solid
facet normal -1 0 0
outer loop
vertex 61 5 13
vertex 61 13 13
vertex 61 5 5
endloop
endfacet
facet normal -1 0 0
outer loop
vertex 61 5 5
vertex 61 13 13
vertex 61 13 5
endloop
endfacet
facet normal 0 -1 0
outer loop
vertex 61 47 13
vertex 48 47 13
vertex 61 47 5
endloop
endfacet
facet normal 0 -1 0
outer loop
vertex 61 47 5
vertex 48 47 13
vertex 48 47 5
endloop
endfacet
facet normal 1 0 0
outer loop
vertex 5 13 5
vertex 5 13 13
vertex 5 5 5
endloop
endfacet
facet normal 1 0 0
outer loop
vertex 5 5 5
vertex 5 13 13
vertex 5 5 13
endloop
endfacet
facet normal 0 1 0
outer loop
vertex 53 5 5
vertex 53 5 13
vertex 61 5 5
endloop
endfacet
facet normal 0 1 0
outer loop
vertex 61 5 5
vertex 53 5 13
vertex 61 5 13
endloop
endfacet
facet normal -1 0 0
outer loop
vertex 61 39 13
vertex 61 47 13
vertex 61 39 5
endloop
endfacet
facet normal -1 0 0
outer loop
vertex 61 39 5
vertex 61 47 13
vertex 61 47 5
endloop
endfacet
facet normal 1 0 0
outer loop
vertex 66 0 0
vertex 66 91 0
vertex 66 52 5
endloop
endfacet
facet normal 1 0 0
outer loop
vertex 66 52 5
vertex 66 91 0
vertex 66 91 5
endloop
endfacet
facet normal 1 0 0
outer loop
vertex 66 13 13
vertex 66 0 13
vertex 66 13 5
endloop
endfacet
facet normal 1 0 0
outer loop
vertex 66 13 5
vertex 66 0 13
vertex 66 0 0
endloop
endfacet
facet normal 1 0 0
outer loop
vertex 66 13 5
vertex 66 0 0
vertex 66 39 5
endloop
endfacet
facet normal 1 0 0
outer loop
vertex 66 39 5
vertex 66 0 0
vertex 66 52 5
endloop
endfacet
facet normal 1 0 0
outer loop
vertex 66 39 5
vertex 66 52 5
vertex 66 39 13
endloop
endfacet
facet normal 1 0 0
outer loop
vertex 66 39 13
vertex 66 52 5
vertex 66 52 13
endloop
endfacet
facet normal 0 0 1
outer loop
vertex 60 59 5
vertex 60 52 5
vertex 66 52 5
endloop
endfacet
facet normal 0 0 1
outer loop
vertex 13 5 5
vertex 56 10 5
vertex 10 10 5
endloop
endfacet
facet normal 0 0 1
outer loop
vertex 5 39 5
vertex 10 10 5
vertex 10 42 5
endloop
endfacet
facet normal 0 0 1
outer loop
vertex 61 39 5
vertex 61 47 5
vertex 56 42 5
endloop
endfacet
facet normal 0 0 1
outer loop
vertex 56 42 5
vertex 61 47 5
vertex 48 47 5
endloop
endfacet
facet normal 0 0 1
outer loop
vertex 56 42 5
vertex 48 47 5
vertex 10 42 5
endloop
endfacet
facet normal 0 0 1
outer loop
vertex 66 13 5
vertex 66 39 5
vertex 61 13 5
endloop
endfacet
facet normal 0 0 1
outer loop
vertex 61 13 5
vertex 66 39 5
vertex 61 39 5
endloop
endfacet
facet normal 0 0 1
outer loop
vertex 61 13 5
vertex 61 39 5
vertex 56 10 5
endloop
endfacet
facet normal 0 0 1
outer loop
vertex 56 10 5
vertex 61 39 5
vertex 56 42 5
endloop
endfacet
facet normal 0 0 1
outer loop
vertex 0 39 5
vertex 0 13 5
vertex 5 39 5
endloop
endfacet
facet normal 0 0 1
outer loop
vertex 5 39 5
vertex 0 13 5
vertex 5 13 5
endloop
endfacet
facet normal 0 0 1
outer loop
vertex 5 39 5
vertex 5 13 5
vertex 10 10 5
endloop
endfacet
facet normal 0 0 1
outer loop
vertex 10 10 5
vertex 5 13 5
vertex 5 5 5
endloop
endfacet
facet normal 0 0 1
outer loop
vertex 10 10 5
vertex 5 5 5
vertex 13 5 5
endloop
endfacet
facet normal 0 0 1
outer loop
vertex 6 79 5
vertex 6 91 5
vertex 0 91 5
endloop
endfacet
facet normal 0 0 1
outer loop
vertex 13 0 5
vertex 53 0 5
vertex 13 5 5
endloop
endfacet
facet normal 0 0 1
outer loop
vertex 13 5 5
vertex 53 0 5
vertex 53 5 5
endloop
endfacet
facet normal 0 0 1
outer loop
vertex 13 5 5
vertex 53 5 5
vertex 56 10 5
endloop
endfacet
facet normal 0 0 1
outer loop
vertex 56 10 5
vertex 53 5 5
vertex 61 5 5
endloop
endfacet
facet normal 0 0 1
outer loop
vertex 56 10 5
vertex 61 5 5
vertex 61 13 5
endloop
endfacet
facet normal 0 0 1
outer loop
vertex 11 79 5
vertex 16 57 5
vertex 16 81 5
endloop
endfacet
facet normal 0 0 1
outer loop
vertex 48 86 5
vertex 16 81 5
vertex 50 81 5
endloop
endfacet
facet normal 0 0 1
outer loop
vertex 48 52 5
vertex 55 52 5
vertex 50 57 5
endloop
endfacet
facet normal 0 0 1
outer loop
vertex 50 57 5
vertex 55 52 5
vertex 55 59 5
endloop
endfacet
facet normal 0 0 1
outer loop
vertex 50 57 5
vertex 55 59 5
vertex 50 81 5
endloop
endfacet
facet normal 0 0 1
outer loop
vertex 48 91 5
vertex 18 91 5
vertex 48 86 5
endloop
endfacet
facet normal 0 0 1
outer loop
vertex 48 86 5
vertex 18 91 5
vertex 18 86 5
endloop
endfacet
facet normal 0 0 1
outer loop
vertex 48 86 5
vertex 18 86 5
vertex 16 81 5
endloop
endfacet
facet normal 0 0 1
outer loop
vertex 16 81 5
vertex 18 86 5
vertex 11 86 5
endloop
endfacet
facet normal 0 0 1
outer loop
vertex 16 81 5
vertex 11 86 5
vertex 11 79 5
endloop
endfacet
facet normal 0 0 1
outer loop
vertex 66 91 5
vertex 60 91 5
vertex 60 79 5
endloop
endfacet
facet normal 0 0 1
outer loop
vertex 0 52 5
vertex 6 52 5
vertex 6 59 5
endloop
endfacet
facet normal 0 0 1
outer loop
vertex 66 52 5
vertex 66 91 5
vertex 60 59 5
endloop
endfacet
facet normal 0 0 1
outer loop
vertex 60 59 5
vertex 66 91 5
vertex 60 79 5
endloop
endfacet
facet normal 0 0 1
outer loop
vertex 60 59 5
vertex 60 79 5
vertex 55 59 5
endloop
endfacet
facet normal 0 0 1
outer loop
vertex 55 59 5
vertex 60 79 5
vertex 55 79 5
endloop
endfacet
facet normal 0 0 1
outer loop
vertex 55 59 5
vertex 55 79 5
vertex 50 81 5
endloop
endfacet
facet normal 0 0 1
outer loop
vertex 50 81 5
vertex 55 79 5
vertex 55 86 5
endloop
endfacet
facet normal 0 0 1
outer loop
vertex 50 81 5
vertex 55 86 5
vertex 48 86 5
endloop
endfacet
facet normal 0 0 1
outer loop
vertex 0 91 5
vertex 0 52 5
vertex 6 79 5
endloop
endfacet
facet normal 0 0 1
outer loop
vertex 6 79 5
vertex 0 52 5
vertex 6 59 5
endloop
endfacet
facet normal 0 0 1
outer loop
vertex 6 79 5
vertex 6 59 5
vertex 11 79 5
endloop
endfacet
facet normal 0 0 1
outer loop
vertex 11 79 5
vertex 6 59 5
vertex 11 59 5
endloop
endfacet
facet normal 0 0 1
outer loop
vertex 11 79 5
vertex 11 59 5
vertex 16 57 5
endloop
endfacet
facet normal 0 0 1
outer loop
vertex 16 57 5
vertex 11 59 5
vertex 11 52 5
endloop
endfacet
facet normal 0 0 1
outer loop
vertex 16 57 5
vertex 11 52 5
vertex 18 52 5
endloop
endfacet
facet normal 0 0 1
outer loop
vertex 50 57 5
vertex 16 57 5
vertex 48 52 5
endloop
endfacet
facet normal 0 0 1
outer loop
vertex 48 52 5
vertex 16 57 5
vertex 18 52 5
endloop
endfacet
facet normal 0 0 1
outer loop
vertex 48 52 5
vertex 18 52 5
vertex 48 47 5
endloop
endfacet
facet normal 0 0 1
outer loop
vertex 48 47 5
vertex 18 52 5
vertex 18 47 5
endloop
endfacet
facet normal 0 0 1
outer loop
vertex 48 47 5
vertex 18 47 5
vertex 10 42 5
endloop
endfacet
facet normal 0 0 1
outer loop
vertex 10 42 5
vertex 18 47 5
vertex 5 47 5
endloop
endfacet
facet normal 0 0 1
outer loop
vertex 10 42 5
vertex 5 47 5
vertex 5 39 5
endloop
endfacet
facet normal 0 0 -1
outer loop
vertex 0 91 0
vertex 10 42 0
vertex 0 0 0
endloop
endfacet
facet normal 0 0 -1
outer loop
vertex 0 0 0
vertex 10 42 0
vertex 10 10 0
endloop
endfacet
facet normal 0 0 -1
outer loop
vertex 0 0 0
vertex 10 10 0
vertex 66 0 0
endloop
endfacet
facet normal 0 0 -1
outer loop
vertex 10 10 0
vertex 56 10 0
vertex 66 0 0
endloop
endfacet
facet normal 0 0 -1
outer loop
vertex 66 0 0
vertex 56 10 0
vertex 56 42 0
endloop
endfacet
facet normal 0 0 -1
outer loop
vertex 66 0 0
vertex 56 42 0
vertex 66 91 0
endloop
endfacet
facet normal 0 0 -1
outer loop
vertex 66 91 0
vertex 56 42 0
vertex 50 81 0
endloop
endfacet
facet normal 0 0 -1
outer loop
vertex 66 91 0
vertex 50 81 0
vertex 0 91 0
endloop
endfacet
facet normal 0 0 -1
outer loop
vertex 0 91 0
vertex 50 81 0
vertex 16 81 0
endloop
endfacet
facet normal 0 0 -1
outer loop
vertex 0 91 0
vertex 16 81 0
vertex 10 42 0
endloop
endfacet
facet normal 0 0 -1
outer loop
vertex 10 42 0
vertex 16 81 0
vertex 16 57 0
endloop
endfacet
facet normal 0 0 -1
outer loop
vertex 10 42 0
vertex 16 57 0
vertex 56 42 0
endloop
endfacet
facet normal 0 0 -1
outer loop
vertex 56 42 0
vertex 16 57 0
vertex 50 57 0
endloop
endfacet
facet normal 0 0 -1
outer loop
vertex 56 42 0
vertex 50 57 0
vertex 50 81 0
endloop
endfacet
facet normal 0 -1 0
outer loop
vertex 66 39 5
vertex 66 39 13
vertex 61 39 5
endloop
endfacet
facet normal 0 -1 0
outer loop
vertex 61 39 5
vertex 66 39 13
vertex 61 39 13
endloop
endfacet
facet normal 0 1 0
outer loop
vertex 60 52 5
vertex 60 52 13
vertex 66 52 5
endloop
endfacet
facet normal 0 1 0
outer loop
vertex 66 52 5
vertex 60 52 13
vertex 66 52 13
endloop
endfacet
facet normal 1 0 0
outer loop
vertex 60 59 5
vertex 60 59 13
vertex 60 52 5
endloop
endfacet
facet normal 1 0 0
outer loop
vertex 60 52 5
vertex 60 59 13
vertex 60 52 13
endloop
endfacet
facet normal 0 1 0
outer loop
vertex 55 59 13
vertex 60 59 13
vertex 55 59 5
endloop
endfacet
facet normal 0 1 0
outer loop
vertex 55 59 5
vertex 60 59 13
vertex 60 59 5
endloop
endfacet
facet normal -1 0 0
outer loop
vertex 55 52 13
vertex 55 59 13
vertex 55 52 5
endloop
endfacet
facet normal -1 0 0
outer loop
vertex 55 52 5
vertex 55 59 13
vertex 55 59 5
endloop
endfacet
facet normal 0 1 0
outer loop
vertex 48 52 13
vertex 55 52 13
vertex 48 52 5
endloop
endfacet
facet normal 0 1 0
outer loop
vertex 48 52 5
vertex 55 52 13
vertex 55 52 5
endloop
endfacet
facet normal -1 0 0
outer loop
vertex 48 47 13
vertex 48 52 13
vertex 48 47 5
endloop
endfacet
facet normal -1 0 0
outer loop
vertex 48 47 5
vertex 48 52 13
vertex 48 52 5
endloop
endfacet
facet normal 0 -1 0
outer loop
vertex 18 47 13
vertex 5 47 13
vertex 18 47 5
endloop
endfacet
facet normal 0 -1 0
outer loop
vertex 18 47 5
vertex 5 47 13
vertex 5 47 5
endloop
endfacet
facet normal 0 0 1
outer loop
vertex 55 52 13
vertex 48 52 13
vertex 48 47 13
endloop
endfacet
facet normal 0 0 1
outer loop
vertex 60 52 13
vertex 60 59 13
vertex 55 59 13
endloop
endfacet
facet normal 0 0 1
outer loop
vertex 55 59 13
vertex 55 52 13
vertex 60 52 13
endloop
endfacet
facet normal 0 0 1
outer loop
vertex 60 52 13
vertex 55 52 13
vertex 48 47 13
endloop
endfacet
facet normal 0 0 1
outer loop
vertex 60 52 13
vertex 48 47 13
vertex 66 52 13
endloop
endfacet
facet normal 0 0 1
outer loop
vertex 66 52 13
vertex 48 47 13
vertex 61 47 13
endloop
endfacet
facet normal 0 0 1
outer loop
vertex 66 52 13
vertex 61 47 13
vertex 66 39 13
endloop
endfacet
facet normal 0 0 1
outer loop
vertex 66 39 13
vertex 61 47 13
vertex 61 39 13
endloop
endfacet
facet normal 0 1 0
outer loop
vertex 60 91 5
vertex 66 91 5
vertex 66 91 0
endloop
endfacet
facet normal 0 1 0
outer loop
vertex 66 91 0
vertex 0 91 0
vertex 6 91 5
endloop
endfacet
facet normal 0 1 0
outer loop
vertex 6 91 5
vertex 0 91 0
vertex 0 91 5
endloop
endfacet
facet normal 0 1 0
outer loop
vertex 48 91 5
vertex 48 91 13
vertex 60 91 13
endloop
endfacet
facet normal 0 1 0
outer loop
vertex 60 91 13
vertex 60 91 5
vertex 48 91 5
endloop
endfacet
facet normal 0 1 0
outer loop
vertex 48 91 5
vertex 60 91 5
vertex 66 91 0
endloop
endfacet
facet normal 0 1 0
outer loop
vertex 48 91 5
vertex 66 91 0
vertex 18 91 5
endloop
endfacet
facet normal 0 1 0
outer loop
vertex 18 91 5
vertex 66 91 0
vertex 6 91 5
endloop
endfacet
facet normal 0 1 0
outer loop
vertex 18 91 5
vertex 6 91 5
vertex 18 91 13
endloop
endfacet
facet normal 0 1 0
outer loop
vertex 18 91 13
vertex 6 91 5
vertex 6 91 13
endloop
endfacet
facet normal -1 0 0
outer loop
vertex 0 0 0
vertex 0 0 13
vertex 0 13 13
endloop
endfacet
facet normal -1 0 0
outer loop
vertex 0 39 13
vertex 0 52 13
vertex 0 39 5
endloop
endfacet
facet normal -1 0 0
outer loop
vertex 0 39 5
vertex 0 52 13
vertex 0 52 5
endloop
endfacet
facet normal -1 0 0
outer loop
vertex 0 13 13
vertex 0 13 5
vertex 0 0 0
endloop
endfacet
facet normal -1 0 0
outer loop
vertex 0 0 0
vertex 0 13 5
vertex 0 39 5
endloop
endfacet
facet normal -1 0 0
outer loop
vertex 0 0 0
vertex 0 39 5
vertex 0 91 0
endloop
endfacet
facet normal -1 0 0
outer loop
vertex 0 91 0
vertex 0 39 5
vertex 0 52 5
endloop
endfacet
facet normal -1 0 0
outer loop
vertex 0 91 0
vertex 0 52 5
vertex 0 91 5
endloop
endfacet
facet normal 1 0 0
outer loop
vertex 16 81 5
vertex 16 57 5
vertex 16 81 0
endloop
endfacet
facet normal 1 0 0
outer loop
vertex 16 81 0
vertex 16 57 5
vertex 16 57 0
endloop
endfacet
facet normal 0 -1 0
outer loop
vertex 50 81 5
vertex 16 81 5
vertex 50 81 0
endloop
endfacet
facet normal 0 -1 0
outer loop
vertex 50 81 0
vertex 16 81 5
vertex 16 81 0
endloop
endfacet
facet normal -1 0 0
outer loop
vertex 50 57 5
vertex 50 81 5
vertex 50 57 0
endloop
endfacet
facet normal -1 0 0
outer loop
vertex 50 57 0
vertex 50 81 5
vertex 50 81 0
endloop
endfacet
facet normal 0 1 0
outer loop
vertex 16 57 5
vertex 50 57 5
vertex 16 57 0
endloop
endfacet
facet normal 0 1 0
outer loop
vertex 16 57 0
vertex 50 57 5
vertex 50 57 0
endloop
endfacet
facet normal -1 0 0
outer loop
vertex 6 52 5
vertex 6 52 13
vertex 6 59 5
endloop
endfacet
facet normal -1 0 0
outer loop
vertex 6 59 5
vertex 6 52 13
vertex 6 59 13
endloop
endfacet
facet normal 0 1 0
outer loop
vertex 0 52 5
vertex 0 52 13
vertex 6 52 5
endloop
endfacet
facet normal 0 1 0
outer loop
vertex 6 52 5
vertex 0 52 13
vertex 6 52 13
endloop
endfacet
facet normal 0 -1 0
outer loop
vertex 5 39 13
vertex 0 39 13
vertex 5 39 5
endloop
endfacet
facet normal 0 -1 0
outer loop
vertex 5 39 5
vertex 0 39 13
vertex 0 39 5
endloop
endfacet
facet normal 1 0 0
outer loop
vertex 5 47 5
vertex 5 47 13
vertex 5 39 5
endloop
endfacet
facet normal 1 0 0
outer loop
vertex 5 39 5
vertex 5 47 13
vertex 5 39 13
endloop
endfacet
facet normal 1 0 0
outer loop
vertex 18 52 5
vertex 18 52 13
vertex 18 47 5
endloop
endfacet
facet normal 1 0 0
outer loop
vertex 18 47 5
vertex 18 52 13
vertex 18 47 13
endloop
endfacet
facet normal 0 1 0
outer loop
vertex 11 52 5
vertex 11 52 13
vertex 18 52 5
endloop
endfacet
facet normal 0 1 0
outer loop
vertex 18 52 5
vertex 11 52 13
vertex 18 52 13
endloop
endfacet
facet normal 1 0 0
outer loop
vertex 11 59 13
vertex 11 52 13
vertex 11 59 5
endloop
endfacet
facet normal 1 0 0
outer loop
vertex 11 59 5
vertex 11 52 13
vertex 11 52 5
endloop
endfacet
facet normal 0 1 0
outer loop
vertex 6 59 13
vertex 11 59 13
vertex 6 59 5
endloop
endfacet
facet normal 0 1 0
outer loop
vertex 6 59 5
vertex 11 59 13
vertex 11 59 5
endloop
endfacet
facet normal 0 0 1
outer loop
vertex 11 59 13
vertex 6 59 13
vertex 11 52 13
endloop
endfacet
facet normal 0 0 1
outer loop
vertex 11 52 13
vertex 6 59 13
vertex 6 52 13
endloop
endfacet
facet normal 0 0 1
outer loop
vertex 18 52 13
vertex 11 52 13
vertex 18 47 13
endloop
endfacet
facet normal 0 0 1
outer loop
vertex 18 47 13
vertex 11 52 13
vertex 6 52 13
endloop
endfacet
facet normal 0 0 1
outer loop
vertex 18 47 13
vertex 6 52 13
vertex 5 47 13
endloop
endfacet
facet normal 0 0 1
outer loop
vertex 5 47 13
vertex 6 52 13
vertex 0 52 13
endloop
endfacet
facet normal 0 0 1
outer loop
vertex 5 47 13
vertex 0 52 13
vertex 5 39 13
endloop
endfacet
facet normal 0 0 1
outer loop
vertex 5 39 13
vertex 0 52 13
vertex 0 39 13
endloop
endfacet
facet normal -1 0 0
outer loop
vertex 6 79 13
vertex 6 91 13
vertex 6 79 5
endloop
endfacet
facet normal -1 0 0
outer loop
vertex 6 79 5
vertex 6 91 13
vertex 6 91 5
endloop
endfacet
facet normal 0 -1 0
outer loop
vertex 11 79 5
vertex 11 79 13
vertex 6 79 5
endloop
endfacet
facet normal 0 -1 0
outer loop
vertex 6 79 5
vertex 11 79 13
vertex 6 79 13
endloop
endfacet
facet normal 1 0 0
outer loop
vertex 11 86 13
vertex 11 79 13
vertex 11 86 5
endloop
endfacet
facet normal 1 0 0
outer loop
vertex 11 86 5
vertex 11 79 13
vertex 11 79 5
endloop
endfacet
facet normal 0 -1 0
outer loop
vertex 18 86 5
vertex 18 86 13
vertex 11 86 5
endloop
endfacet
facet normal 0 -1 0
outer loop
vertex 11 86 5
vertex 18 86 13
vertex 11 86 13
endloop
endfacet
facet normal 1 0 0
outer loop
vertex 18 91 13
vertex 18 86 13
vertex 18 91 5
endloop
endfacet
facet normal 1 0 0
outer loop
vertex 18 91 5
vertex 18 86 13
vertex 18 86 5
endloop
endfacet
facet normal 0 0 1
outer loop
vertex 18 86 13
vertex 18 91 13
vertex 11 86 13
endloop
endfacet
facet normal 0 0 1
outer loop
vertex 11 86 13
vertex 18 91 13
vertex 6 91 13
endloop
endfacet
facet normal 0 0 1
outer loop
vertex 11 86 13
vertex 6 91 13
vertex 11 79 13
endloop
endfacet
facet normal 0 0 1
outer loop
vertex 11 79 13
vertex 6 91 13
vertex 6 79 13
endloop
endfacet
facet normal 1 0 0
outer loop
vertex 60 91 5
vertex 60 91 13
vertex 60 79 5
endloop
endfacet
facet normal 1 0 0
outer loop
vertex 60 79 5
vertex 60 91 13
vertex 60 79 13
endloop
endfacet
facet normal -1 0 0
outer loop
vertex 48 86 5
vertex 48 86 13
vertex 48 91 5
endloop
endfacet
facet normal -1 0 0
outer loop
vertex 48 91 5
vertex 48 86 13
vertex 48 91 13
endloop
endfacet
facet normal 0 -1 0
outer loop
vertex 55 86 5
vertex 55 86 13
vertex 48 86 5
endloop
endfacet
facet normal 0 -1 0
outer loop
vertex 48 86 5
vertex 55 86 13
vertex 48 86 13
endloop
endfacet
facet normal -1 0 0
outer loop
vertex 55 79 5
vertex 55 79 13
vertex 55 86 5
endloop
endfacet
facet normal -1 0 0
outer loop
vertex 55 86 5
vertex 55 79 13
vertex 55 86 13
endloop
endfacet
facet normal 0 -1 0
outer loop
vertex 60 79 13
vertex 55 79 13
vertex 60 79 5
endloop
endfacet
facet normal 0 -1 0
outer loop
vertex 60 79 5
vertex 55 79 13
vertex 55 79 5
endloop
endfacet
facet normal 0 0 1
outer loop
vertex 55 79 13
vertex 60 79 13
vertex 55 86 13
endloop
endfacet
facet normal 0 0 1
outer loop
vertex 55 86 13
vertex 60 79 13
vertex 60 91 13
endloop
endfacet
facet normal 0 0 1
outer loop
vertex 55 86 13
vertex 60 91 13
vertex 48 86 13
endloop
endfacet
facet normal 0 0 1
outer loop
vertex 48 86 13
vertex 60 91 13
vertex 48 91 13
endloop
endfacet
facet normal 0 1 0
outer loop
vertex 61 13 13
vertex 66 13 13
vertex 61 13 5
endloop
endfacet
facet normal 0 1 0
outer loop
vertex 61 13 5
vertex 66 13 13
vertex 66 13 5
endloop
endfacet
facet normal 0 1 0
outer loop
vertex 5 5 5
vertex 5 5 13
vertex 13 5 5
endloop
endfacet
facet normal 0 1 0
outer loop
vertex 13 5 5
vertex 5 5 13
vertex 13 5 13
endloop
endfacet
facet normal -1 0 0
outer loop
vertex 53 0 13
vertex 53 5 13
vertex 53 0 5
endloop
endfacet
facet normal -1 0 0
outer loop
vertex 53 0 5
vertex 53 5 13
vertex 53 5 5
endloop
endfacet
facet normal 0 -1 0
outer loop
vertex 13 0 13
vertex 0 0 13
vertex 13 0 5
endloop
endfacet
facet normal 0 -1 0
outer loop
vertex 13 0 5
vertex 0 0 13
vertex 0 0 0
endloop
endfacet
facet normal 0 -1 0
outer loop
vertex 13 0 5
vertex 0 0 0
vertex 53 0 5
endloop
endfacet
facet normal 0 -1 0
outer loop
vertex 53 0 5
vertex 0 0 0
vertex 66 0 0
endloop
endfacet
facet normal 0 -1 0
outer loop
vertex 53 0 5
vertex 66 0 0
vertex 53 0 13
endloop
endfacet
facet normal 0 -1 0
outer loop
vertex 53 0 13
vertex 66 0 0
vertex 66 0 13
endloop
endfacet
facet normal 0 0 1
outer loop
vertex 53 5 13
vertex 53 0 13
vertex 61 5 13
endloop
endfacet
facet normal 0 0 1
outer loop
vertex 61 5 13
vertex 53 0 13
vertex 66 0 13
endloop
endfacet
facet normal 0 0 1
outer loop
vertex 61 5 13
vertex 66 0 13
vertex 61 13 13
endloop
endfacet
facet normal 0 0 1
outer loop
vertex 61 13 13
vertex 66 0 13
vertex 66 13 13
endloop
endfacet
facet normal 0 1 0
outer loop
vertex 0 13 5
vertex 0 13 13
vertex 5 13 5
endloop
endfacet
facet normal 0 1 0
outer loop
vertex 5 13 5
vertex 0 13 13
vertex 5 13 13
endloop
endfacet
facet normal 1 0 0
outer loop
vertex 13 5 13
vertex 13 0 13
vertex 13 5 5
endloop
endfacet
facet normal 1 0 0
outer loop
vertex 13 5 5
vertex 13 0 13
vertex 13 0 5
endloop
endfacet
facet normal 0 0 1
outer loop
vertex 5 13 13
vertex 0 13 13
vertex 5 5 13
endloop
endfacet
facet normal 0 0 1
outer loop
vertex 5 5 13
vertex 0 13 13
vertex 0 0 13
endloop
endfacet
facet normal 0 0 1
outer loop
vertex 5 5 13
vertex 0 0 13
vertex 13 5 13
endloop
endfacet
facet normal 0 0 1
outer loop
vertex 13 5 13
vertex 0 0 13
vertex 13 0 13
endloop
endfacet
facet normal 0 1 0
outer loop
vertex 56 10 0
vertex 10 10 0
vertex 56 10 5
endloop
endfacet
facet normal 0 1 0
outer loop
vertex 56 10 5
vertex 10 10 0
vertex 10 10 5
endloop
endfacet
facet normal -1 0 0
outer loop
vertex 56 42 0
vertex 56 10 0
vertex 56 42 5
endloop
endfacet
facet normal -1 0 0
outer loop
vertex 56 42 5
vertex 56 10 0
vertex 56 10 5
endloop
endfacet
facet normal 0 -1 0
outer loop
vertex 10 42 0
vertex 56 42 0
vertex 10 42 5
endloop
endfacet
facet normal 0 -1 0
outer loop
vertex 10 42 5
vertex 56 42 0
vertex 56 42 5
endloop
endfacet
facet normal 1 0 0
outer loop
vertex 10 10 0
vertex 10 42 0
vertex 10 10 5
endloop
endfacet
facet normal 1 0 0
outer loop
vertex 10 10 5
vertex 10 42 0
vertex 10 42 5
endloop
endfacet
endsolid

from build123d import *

# Parameters (mm, degrees)
SKETCH1_W             = 40
SKETCH1_H             = 5
BOSS_EXTRUDE1_DEPTH   = 5
SKETCH1_W_2           = 5
SKETCH1_H_2           = 26
BOSS_EXTRUDE1_2_DEPTH = 5
BOSS_EXTRUDE1_3_DEPTH = 5
SKETCH1_W_3           = 34
SKETCH1_H_3           = 24
BOSS_EXTRUDE1_4_DEPTH = 5
BOSS_EXTRUDE2_DEPTH   = 13
SKETCH2_W             = 46
SKETCH2_H             = 32
BOSS_EXTRUDE6_DEPTH   = 5


with BuildPart() as part:
    # Sketch1 → Boss-Extrude1 (new body)
    with BuildSketch(Plane.XY):
        with Locations((33, 2.5)):
            Rectangle(SKETCH1_W, SKETCH1_H)
    extrude(amount=BOSS_EXTRUDE1_DEPTH)



with BuildPart() as body_2:
    # Sketch1 → Boss-Extrude1 2 (new body)
    with BuildSketch(Plane.XY):
        with Locations((2.5, 26)):
            Rectangle(SKETCH1_W_2, SKETCH1_H_2)
    extrude(amount=BOSS_EXTRUDE1_2_DEPTH)


with BuildPart() as body_3:
    # Sketch1 → Boss-Extrude1 3 (new body)
    with BuildSketch(Plane.XY):
        with Locations((63.5, 26)):
            Rectangle(SKETCH1_W_2, SKETCH1_H_2)
    extrude(amount=BOSS_EXTRUDE1_3_DEPTH)


with BuildPart() as body_4:
    # Sketch1 → Boss-Extrude1 4 (new body)
    with BuildSketch(Plane.XY):
        Polygon((0, 91), (0, 52), (6, 52), (6, 59), (11, 59), (11, 52), (18, 52), (18, 47), (48, 47), (48, 52), (55, 52), (55, 59), (60, 59), (60, 52), (66, 52), (66, 91), (60, 91), (60, 79), (55, 79), (55, 86), (48, 86), (48, 91), (18, 91), (18, 86), (11, 86), (11, 79), (6, 79), (6, 91), align=None)
        with Locations((33, 69)):
            Rectangle(SKETCH1_W_3, SKETCH1_H_3, mode=Mode.SUBTRACT)
    extrude(amount=BOSS_EXTRUDE1_4_DEPTH)


with BuildPart() as part_1:
    add(part.part)

    add(body_2.part)  # Boss-Extrude2 merges body 2

    add(body_3.part)  # Boss-Extrude2 merges body 3

    add(body_4.part)  # Boss-Extrude2 merges body 4
    # Sketch1<3> → Boss-Extrude2 (add)
    with BuildSketch(Plane.XY):
        Polygon((0, 13), (0, 0), (13, 0), (13, 5), (5, 5), (5, 13), align=None)
        Polygon((53, 5), (53, 0), (66, 0), (66, 13), (61, 13), (61, 5), align=None)
        Polygon((0, 52), (0, 39), (5, 39), (5, 47), (18, 47), (18, 52), (11, 52), (11, 59), (6, 59), (6, 52), align=None)
        Polygon((61, 47), (61, 39), (66, 39), (66, 52), (60, 52), (60, 59), (55, 59), (55, 52), (48, 52), (48, 47), align=None)
        Polygon((18, 91), (6, 91), (6, 79), (11, 79), (11, 86), (18, 86), align=None)
        Polygon((60, 91), (48, 91), (48, 86), (55, 86), (55, 79), (60, 79), align=None)
    extrude(amount=BOSS_EXTRUDE2_DEPTH)

    # Sketch2 → Boss-Extrude6 (add)
    with BuildSketch(Plane.XY.offset(5)):
        Polygon((5, 10), (5, 5), (10, 5), (13, 5), (53, 5), (56, 5), (61, 5), (61, 10), (61, 42), (61, 47), (56, 47), (10, 47), (5, 47), (5, 42), align=None)
        with Locations((33, 26)):
            Rectangle(SKETCH2_W, SKETCH2_H, mode=Mode.SUBTRACT)
    extrude(amount=-BOSS_EXTRUDE6_DEPTH)


solid = part_1.part
